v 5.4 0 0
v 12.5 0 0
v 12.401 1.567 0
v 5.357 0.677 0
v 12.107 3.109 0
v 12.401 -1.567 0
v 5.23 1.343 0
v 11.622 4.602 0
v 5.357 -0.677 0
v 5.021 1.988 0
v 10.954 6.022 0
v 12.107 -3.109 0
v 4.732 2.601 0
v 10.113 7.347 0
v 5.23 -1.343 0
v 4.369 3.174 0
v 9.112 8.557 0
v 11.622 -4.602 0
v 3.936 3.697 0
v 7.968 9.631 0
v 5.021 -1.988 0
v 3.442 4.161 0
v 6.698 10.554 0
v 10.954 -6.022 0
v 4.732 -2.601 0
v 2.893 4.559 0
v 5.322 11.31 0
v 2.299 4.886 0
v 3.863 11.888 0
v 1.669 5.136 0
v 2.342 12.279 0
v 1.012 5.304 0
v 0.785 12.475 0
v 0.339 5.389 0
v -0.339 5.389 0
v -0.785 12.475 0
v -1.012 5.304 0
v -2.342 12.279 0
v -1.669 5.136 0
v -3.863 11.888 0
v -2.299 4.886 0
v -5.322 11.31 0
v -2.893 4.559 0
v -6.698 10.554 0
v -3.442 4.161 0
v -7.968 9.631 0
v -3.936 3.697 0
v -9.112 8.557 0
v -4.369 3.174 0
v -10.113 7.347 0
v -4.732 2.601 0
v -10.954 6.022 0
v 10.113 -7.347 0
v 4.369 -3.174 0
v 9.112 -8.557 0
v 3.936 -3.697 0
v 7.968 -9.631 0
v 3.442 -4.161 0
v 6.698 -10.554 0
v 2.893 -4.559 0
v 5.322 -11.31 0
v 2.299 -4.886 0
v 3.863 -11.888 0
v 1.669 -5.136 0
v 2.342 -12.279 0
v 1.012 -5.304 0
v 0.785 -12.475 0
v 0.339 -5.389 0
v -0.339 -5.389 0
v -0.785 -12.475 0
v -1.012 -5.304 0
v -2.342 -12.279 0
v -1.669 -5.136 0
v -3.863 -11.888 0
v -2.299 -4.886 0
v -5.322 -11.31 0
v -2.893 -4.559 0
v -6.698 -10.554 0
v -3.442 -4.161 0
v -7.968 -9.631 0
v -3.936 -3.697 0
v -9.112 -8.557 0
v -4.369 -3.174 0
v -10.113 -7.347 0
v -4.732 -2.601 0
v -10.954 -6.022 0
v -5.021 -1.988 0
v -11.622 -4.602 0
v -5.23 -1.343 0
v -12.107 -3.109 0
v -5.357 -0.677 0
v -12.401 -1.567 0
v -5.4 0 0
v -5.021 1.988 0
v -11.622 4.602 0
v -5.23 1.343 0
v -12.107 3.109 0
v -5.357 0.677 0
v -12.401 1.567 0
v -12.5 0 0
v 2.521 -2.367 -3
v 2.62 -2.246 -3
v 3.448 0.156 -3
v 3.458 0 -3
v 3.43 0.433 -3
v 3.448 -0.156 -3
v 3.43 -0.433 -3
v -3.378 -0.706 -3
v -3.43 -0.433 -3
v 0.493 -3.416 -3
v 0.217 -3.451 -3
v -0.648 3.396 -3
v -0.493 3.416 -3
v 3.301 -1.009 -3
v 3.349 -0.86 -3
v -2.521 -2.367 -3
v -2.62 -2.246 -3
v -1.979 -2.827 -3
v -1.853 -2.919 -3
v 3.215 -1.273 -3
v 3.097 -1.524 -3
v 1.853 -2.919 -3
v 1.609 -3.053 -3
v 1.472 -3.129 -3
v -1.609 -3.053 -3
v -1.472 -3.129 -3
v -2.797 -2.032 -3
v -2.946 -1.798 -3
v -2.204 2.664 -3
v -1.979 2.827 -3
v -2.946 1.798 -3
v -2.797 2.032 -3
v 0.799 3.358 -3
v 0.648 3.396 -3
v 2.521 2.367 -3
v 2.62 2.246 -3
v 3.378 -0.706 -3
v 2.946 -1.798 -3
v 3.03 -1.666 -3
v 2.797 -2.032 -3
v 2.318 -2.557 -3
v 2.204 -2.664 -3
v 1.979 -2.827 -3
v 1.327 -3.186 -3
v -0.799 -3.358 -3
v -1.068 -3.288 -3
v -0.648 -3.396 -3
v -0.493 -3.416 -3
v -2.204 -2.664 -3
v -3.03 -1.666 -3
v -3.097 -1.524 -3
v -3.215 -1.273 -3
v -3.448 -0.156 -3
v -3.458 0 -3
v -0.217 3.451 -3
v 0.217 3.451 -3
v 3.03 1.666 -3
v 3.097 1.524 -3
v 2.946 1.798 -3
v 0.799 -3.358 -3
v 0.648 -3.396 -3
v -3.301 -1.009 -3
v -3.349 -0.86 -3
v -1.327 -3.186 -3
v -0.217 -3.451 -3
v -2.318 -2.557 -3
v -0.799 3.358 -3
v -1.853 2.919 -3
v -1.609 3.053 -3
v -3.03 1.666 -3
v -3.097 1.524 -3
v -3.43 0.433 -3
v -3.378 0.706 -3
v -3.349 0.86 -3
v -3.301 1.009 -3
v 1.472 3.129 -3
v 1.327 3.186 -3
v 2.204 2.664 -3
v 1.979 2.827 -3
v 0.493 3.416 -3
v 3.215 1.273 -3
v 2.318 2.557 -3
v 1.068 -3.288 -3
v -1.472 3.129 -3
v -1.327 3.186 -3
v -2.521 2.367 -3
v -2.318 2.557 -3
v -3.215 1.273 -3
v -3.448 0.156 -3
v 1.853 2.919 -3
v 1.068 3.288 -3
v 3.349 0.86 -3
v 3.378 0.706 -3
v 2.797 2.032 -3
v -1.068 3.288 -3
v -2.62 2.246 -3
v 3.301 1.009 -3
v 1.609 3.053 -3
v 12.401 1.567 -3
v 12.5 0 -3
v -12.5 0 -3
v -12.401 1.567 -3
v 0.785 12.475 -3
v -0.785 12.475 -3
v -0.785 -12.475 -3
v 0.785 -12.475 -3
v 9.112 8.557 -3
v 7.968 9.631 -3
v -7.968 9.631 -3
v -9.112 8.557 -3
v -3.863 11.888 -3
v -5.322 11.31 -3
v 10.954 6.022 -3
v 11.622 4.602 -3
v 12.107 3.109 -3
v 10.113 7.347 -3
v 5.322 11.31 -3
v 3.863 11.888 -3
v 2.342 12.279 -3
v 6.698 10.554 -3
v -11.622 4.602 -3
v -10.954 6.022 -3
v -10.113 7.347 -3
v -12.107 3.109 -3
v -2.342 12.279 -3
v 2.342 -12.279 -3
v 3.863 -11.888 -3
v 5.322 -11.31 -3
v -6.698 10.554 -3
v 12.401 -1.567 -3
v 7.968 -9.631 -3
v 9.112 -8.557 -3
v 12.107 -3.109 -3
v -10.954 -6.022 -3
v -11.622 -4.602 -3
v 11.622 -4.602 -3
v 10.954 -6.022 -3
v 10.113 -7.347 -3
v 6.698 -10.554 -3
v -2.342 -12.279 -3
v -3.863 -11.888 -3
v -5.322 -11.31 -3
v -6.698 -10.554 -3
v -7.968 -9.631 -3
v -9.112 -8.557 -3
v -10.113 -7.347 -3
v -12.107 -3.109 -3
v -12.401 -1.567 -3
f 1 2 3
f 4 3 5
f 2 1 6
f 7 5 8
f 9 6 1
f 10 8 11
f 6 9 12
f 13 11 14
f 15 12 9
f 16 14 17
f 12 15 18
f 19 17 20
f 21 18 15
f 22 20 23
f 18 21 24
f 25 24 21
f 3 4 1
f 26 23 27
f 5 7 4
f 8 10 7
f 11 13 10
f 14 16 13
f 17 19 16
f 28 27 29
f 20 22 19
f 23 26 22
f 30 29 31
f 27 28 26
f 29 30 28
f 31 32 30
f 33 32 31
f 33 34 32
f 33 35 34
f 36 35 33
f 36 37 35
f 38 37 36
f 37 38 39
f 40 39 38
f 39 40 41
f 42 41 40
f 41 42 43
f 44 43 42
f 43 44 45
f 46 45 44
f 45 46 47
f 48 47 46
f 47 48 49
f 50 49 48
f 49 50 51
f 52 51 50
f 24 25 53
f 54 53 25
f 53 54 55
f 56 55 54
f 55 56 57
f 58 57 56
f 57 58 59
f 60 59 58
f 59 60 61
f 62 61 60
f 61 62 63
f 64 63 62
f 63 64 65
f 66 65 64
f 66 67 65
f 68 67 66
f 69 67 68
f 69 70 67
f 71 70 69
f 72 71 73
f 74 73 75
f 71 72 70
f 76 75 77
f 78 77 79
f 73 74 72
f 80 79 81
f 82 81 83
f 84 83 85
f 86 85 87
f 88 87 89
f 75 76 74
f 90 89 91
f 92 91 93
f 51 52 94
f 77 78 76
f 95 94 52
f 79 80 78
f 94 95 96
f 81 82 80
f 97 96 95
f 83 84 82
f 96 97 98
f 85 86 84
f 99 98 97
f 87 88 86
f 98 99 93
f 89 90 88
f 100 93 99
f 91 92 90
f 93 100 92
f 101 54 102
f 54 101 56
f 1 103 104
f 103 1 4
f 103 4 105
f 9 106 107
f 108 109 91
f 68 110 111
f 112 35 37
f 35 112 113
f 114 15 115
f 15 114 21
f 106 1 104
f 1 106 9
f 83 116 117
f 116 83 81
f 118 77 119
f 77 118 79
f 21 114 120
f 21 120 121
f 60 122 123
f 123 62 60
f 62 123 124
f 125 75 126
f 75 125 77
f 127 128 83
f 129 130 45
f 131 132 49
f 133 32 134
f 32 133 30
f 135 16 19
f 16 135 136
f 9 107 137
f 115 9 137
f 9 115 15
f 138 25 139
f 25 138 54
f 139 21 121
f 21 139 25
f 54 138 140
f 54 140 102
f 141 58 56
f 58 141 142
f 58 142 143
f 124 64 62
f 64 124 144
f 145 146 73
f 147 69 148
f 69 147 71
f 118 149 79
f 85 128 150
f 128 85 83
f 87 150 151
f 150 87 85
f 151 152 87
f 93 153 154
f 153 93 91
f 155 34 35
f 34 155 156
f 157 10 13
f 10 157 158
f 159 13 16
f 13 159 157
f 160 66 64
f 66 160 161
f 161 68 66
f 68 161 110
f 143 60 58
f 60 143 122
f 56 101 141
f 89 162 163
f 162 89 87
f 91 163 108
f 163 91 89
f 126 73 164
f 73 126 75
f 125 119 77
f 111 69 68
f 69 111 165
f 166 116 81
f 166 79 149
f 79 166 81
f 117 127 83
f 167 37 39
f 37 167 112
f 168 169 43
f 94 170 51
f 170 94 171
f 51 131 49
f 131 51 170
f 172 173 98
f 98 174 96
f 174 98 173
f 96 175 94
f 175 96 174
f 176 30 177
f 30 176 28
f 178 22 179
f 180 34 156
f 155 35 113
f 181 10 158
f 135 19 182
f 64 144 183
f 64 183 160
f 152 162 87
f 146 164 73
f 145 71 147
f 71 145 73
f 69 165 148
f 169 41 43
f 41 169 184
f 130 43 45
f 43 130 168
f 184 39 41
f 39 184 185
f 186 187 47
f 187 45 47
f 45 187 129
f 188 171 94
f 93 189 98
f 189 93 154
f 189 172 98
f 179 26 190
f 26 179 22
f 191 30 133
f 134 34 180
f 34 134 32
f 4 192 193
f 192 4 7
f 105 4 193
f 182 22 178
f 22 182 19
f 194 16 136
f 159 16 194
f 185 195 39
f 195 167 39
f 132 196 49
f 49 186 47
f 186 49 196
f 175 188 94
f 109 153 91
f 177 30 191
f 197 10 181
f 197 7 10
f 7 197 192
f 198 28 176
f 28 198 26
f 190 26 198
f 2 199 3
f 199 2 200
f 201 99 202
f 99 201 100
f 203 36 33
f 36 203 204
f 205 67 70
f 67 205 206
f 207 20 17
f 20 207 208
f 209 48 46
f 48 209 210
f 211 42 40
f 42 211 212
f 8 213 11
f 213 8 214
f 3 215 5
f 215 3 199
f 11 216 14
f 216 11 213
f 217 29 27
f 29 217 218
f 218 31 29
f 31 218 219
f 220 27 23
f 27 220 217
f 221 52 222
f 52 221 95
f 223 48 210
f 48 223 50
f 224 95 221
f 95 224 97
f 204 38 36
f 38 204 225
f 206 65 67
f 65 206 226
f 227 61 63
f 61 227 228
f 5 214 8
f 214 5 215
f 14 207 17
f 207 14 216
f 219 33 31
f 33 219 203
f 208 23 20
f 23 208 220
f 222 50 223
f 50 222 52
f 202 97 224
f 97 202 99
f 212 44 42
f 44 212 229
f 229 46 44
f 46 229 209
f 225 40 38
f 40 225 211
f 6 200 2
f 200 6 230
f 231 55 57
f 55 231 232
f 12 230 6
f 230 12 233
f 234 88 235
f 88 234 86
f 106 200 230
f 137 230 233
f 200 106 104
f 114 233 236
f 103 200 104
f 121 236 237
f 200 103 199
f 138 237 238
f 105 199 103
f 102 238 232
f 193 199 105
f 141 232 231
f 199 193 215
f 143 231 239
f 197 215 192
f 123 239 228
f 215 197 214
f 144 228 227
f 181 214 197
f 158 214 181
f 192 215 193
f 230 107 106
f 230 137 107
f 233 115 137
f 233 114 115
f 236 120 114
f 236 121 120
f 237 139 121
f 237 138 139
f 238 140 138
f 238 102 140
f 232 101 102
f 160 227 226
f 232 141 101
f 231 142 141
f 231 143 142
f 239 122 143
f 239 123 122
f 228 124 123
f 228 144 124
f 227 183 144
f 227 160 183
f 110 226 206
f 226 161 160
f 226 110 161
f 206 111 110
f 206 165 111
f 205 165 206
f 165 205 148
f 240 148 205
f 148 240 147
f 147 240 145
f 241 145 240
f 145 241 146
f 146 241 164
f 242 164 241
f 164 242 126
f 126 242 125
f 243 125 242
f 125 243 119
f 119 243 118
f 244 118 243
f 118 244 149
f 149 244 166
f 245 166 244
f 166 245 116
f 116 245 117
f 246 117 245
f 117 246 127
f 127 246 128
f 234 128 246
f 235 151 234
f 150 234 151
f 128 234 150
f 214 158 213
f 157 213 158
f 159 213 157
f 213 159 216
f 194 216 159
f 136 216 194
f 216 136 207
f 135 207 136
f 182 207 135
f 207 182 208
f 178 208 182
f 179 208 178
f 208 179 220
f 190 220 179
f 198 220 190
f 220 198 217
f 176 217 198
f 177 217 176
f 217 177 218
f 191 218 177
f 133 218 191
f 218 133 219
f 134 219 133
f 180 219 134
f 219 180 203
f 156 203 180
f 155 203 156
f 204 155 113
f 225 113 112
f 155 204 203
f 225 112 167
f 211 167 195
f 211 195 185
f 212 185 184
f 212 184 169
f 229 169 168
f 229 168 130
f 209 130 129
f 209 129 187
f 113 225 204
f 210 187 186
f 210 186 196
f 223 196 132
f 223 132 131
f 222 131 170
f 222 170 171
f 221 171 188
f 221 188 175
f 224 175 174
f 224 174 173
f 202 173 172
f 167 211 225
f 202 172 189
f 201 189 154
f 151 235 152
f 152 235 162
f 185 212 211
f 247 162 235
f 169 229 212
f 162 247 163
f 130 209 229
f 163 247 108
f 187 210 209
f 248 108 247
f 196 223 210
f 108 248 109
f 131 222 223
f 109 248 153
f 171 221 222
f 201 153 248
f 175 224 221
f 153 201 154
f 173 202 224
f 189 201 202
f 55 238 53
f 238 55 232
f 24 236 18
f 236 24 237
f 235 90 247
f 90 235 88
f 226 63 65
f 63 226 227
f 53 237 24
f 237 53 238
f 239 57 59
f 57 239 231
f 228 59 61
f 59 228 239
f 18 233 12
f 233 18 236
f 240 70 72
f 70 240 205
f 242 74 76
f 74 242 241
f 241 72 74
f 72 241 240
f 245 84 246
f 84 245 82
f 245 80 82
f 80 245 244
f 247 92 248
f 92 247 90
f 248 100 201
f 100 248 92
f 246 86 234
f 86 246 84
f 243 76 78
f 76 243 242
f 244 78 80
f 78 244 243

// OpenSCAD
$fn = 50;

difference() {
	union() {
		translate(v = [0, 0, -3.0]) {
			cylinder(h = 3, r = 12.5);
		}
	}
	union() {
		translate(v = [0, 0, 0]) {
			rotate(a = [0, 0, 0]) {
				difference() {
					union() {
						translate(v = [0, 0, -6.0]) {
							cylinder(h = 6, r = 2.6);
						}
						translate(v = [0, 0, -3.9]) {
							cylinder(h = 3.9, r1 = 2.875, r2 = 5.4);
						}
						translate(v = [0, 0, -6.0]) {
							cylinder(h = 6, r = 2.875);
						}
						translate(v = [0, 0, -6.0]) {
							cylinder(h = 6, r = 2.6);
						}
					}
					union();
				}
			}
		}
	}
}
